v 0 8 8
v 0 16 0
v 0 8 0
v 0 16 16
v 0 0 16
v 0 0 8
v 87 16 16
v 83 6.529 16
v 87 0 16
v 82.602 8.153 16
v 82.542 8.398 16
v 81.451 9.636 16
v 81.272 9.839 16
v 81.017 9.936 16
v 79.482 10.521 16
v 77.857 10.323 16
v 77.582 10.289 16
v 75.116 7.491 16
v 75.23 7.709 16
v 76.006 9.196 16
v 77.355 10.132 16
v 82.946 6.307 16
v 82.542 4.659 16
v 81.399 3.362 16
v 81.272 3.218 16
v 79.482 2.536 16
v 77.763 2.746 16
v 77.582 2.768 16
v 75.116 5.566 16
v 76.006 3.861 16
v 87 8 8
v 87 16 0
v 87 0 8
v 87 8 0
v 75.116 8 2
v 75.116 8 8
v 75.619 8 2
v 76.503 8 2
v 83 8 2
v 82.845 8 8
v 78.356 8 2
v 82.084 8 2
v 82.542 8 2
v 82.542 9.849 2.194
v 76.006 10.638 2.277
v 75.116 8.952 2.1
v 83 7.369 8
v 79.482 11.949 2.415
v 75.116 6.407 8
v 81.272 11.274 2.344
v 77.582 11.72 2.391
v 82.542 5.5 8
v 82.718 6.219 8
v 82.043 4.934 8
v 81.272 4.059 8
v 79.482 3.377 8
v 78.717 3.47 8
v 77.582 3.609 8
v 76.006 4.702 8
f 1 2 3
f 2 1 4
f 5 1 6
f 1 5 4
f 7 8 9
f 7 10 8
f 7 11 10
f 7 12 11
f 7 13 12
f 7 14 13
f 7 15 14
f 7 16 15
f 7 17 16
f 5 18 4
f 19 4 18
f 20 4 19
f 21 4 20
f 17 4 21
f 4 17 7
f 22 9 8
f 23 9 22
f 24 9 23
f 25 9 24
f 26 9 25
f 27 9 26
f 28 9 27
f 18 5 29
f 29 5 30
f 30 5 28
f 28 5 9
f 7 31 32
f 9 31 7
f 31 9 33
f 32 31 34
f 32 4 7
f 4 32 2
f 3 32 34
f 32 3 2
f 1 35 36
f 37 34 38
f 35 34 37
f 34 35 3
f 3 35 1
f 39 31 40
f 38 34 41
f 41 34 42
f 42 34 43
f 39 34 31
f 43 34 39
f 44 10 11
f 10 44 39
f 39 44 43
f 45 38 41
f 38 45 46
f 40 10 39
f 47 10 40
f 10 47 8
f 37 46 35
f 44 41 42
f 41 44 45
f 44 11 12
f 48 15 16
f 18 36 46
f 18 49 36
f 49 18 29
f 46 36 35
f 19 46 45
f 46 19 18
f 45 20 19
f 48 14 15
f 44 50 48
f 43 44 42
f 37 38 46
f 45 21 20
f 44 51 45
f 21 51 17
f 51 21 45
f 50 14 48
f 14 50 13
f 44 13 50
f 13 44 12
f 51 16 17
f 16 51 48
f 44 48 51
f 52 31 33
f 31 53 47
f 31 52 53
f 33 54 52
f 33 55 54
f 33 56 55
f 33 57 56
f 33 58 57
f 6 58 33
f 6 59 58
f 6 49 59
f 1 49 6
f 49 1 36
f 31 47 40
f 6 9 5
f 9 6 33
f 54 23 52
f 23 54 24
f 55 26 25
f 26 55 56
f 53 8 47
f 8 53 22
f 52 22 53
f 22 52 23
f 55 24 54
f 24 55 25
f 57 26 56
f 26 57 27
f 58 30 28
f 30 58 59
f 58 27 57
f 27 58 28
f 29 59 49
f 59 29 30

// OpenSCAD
// how big the frame itself will be
border_size = 8;

// final dimension is the first number
width = 87 - border_size;

// nail hole info
nail_diameter = 4;
nail_angle = 6; // degrees

module nail() {
	translate([width, border_size, 2]) {
		rotate([nail_angle, 0, 0]) {
			cylinder(border_size * 2, nail_diameter, nail_diameter);
		}
	}
}

// top edge
difference() {
	translate([0, border_size, 0]) {
		cube([width + border_size, border_size, border_size * 2]);
	}

	nail();
}


// top ridge
difference() {
	translate([0, 0, border_size]) {
		translate([0, 0, 0]) {
			cube([width + border_size, border_size * 2, border_size]);
		}
	}

	nail();
}
